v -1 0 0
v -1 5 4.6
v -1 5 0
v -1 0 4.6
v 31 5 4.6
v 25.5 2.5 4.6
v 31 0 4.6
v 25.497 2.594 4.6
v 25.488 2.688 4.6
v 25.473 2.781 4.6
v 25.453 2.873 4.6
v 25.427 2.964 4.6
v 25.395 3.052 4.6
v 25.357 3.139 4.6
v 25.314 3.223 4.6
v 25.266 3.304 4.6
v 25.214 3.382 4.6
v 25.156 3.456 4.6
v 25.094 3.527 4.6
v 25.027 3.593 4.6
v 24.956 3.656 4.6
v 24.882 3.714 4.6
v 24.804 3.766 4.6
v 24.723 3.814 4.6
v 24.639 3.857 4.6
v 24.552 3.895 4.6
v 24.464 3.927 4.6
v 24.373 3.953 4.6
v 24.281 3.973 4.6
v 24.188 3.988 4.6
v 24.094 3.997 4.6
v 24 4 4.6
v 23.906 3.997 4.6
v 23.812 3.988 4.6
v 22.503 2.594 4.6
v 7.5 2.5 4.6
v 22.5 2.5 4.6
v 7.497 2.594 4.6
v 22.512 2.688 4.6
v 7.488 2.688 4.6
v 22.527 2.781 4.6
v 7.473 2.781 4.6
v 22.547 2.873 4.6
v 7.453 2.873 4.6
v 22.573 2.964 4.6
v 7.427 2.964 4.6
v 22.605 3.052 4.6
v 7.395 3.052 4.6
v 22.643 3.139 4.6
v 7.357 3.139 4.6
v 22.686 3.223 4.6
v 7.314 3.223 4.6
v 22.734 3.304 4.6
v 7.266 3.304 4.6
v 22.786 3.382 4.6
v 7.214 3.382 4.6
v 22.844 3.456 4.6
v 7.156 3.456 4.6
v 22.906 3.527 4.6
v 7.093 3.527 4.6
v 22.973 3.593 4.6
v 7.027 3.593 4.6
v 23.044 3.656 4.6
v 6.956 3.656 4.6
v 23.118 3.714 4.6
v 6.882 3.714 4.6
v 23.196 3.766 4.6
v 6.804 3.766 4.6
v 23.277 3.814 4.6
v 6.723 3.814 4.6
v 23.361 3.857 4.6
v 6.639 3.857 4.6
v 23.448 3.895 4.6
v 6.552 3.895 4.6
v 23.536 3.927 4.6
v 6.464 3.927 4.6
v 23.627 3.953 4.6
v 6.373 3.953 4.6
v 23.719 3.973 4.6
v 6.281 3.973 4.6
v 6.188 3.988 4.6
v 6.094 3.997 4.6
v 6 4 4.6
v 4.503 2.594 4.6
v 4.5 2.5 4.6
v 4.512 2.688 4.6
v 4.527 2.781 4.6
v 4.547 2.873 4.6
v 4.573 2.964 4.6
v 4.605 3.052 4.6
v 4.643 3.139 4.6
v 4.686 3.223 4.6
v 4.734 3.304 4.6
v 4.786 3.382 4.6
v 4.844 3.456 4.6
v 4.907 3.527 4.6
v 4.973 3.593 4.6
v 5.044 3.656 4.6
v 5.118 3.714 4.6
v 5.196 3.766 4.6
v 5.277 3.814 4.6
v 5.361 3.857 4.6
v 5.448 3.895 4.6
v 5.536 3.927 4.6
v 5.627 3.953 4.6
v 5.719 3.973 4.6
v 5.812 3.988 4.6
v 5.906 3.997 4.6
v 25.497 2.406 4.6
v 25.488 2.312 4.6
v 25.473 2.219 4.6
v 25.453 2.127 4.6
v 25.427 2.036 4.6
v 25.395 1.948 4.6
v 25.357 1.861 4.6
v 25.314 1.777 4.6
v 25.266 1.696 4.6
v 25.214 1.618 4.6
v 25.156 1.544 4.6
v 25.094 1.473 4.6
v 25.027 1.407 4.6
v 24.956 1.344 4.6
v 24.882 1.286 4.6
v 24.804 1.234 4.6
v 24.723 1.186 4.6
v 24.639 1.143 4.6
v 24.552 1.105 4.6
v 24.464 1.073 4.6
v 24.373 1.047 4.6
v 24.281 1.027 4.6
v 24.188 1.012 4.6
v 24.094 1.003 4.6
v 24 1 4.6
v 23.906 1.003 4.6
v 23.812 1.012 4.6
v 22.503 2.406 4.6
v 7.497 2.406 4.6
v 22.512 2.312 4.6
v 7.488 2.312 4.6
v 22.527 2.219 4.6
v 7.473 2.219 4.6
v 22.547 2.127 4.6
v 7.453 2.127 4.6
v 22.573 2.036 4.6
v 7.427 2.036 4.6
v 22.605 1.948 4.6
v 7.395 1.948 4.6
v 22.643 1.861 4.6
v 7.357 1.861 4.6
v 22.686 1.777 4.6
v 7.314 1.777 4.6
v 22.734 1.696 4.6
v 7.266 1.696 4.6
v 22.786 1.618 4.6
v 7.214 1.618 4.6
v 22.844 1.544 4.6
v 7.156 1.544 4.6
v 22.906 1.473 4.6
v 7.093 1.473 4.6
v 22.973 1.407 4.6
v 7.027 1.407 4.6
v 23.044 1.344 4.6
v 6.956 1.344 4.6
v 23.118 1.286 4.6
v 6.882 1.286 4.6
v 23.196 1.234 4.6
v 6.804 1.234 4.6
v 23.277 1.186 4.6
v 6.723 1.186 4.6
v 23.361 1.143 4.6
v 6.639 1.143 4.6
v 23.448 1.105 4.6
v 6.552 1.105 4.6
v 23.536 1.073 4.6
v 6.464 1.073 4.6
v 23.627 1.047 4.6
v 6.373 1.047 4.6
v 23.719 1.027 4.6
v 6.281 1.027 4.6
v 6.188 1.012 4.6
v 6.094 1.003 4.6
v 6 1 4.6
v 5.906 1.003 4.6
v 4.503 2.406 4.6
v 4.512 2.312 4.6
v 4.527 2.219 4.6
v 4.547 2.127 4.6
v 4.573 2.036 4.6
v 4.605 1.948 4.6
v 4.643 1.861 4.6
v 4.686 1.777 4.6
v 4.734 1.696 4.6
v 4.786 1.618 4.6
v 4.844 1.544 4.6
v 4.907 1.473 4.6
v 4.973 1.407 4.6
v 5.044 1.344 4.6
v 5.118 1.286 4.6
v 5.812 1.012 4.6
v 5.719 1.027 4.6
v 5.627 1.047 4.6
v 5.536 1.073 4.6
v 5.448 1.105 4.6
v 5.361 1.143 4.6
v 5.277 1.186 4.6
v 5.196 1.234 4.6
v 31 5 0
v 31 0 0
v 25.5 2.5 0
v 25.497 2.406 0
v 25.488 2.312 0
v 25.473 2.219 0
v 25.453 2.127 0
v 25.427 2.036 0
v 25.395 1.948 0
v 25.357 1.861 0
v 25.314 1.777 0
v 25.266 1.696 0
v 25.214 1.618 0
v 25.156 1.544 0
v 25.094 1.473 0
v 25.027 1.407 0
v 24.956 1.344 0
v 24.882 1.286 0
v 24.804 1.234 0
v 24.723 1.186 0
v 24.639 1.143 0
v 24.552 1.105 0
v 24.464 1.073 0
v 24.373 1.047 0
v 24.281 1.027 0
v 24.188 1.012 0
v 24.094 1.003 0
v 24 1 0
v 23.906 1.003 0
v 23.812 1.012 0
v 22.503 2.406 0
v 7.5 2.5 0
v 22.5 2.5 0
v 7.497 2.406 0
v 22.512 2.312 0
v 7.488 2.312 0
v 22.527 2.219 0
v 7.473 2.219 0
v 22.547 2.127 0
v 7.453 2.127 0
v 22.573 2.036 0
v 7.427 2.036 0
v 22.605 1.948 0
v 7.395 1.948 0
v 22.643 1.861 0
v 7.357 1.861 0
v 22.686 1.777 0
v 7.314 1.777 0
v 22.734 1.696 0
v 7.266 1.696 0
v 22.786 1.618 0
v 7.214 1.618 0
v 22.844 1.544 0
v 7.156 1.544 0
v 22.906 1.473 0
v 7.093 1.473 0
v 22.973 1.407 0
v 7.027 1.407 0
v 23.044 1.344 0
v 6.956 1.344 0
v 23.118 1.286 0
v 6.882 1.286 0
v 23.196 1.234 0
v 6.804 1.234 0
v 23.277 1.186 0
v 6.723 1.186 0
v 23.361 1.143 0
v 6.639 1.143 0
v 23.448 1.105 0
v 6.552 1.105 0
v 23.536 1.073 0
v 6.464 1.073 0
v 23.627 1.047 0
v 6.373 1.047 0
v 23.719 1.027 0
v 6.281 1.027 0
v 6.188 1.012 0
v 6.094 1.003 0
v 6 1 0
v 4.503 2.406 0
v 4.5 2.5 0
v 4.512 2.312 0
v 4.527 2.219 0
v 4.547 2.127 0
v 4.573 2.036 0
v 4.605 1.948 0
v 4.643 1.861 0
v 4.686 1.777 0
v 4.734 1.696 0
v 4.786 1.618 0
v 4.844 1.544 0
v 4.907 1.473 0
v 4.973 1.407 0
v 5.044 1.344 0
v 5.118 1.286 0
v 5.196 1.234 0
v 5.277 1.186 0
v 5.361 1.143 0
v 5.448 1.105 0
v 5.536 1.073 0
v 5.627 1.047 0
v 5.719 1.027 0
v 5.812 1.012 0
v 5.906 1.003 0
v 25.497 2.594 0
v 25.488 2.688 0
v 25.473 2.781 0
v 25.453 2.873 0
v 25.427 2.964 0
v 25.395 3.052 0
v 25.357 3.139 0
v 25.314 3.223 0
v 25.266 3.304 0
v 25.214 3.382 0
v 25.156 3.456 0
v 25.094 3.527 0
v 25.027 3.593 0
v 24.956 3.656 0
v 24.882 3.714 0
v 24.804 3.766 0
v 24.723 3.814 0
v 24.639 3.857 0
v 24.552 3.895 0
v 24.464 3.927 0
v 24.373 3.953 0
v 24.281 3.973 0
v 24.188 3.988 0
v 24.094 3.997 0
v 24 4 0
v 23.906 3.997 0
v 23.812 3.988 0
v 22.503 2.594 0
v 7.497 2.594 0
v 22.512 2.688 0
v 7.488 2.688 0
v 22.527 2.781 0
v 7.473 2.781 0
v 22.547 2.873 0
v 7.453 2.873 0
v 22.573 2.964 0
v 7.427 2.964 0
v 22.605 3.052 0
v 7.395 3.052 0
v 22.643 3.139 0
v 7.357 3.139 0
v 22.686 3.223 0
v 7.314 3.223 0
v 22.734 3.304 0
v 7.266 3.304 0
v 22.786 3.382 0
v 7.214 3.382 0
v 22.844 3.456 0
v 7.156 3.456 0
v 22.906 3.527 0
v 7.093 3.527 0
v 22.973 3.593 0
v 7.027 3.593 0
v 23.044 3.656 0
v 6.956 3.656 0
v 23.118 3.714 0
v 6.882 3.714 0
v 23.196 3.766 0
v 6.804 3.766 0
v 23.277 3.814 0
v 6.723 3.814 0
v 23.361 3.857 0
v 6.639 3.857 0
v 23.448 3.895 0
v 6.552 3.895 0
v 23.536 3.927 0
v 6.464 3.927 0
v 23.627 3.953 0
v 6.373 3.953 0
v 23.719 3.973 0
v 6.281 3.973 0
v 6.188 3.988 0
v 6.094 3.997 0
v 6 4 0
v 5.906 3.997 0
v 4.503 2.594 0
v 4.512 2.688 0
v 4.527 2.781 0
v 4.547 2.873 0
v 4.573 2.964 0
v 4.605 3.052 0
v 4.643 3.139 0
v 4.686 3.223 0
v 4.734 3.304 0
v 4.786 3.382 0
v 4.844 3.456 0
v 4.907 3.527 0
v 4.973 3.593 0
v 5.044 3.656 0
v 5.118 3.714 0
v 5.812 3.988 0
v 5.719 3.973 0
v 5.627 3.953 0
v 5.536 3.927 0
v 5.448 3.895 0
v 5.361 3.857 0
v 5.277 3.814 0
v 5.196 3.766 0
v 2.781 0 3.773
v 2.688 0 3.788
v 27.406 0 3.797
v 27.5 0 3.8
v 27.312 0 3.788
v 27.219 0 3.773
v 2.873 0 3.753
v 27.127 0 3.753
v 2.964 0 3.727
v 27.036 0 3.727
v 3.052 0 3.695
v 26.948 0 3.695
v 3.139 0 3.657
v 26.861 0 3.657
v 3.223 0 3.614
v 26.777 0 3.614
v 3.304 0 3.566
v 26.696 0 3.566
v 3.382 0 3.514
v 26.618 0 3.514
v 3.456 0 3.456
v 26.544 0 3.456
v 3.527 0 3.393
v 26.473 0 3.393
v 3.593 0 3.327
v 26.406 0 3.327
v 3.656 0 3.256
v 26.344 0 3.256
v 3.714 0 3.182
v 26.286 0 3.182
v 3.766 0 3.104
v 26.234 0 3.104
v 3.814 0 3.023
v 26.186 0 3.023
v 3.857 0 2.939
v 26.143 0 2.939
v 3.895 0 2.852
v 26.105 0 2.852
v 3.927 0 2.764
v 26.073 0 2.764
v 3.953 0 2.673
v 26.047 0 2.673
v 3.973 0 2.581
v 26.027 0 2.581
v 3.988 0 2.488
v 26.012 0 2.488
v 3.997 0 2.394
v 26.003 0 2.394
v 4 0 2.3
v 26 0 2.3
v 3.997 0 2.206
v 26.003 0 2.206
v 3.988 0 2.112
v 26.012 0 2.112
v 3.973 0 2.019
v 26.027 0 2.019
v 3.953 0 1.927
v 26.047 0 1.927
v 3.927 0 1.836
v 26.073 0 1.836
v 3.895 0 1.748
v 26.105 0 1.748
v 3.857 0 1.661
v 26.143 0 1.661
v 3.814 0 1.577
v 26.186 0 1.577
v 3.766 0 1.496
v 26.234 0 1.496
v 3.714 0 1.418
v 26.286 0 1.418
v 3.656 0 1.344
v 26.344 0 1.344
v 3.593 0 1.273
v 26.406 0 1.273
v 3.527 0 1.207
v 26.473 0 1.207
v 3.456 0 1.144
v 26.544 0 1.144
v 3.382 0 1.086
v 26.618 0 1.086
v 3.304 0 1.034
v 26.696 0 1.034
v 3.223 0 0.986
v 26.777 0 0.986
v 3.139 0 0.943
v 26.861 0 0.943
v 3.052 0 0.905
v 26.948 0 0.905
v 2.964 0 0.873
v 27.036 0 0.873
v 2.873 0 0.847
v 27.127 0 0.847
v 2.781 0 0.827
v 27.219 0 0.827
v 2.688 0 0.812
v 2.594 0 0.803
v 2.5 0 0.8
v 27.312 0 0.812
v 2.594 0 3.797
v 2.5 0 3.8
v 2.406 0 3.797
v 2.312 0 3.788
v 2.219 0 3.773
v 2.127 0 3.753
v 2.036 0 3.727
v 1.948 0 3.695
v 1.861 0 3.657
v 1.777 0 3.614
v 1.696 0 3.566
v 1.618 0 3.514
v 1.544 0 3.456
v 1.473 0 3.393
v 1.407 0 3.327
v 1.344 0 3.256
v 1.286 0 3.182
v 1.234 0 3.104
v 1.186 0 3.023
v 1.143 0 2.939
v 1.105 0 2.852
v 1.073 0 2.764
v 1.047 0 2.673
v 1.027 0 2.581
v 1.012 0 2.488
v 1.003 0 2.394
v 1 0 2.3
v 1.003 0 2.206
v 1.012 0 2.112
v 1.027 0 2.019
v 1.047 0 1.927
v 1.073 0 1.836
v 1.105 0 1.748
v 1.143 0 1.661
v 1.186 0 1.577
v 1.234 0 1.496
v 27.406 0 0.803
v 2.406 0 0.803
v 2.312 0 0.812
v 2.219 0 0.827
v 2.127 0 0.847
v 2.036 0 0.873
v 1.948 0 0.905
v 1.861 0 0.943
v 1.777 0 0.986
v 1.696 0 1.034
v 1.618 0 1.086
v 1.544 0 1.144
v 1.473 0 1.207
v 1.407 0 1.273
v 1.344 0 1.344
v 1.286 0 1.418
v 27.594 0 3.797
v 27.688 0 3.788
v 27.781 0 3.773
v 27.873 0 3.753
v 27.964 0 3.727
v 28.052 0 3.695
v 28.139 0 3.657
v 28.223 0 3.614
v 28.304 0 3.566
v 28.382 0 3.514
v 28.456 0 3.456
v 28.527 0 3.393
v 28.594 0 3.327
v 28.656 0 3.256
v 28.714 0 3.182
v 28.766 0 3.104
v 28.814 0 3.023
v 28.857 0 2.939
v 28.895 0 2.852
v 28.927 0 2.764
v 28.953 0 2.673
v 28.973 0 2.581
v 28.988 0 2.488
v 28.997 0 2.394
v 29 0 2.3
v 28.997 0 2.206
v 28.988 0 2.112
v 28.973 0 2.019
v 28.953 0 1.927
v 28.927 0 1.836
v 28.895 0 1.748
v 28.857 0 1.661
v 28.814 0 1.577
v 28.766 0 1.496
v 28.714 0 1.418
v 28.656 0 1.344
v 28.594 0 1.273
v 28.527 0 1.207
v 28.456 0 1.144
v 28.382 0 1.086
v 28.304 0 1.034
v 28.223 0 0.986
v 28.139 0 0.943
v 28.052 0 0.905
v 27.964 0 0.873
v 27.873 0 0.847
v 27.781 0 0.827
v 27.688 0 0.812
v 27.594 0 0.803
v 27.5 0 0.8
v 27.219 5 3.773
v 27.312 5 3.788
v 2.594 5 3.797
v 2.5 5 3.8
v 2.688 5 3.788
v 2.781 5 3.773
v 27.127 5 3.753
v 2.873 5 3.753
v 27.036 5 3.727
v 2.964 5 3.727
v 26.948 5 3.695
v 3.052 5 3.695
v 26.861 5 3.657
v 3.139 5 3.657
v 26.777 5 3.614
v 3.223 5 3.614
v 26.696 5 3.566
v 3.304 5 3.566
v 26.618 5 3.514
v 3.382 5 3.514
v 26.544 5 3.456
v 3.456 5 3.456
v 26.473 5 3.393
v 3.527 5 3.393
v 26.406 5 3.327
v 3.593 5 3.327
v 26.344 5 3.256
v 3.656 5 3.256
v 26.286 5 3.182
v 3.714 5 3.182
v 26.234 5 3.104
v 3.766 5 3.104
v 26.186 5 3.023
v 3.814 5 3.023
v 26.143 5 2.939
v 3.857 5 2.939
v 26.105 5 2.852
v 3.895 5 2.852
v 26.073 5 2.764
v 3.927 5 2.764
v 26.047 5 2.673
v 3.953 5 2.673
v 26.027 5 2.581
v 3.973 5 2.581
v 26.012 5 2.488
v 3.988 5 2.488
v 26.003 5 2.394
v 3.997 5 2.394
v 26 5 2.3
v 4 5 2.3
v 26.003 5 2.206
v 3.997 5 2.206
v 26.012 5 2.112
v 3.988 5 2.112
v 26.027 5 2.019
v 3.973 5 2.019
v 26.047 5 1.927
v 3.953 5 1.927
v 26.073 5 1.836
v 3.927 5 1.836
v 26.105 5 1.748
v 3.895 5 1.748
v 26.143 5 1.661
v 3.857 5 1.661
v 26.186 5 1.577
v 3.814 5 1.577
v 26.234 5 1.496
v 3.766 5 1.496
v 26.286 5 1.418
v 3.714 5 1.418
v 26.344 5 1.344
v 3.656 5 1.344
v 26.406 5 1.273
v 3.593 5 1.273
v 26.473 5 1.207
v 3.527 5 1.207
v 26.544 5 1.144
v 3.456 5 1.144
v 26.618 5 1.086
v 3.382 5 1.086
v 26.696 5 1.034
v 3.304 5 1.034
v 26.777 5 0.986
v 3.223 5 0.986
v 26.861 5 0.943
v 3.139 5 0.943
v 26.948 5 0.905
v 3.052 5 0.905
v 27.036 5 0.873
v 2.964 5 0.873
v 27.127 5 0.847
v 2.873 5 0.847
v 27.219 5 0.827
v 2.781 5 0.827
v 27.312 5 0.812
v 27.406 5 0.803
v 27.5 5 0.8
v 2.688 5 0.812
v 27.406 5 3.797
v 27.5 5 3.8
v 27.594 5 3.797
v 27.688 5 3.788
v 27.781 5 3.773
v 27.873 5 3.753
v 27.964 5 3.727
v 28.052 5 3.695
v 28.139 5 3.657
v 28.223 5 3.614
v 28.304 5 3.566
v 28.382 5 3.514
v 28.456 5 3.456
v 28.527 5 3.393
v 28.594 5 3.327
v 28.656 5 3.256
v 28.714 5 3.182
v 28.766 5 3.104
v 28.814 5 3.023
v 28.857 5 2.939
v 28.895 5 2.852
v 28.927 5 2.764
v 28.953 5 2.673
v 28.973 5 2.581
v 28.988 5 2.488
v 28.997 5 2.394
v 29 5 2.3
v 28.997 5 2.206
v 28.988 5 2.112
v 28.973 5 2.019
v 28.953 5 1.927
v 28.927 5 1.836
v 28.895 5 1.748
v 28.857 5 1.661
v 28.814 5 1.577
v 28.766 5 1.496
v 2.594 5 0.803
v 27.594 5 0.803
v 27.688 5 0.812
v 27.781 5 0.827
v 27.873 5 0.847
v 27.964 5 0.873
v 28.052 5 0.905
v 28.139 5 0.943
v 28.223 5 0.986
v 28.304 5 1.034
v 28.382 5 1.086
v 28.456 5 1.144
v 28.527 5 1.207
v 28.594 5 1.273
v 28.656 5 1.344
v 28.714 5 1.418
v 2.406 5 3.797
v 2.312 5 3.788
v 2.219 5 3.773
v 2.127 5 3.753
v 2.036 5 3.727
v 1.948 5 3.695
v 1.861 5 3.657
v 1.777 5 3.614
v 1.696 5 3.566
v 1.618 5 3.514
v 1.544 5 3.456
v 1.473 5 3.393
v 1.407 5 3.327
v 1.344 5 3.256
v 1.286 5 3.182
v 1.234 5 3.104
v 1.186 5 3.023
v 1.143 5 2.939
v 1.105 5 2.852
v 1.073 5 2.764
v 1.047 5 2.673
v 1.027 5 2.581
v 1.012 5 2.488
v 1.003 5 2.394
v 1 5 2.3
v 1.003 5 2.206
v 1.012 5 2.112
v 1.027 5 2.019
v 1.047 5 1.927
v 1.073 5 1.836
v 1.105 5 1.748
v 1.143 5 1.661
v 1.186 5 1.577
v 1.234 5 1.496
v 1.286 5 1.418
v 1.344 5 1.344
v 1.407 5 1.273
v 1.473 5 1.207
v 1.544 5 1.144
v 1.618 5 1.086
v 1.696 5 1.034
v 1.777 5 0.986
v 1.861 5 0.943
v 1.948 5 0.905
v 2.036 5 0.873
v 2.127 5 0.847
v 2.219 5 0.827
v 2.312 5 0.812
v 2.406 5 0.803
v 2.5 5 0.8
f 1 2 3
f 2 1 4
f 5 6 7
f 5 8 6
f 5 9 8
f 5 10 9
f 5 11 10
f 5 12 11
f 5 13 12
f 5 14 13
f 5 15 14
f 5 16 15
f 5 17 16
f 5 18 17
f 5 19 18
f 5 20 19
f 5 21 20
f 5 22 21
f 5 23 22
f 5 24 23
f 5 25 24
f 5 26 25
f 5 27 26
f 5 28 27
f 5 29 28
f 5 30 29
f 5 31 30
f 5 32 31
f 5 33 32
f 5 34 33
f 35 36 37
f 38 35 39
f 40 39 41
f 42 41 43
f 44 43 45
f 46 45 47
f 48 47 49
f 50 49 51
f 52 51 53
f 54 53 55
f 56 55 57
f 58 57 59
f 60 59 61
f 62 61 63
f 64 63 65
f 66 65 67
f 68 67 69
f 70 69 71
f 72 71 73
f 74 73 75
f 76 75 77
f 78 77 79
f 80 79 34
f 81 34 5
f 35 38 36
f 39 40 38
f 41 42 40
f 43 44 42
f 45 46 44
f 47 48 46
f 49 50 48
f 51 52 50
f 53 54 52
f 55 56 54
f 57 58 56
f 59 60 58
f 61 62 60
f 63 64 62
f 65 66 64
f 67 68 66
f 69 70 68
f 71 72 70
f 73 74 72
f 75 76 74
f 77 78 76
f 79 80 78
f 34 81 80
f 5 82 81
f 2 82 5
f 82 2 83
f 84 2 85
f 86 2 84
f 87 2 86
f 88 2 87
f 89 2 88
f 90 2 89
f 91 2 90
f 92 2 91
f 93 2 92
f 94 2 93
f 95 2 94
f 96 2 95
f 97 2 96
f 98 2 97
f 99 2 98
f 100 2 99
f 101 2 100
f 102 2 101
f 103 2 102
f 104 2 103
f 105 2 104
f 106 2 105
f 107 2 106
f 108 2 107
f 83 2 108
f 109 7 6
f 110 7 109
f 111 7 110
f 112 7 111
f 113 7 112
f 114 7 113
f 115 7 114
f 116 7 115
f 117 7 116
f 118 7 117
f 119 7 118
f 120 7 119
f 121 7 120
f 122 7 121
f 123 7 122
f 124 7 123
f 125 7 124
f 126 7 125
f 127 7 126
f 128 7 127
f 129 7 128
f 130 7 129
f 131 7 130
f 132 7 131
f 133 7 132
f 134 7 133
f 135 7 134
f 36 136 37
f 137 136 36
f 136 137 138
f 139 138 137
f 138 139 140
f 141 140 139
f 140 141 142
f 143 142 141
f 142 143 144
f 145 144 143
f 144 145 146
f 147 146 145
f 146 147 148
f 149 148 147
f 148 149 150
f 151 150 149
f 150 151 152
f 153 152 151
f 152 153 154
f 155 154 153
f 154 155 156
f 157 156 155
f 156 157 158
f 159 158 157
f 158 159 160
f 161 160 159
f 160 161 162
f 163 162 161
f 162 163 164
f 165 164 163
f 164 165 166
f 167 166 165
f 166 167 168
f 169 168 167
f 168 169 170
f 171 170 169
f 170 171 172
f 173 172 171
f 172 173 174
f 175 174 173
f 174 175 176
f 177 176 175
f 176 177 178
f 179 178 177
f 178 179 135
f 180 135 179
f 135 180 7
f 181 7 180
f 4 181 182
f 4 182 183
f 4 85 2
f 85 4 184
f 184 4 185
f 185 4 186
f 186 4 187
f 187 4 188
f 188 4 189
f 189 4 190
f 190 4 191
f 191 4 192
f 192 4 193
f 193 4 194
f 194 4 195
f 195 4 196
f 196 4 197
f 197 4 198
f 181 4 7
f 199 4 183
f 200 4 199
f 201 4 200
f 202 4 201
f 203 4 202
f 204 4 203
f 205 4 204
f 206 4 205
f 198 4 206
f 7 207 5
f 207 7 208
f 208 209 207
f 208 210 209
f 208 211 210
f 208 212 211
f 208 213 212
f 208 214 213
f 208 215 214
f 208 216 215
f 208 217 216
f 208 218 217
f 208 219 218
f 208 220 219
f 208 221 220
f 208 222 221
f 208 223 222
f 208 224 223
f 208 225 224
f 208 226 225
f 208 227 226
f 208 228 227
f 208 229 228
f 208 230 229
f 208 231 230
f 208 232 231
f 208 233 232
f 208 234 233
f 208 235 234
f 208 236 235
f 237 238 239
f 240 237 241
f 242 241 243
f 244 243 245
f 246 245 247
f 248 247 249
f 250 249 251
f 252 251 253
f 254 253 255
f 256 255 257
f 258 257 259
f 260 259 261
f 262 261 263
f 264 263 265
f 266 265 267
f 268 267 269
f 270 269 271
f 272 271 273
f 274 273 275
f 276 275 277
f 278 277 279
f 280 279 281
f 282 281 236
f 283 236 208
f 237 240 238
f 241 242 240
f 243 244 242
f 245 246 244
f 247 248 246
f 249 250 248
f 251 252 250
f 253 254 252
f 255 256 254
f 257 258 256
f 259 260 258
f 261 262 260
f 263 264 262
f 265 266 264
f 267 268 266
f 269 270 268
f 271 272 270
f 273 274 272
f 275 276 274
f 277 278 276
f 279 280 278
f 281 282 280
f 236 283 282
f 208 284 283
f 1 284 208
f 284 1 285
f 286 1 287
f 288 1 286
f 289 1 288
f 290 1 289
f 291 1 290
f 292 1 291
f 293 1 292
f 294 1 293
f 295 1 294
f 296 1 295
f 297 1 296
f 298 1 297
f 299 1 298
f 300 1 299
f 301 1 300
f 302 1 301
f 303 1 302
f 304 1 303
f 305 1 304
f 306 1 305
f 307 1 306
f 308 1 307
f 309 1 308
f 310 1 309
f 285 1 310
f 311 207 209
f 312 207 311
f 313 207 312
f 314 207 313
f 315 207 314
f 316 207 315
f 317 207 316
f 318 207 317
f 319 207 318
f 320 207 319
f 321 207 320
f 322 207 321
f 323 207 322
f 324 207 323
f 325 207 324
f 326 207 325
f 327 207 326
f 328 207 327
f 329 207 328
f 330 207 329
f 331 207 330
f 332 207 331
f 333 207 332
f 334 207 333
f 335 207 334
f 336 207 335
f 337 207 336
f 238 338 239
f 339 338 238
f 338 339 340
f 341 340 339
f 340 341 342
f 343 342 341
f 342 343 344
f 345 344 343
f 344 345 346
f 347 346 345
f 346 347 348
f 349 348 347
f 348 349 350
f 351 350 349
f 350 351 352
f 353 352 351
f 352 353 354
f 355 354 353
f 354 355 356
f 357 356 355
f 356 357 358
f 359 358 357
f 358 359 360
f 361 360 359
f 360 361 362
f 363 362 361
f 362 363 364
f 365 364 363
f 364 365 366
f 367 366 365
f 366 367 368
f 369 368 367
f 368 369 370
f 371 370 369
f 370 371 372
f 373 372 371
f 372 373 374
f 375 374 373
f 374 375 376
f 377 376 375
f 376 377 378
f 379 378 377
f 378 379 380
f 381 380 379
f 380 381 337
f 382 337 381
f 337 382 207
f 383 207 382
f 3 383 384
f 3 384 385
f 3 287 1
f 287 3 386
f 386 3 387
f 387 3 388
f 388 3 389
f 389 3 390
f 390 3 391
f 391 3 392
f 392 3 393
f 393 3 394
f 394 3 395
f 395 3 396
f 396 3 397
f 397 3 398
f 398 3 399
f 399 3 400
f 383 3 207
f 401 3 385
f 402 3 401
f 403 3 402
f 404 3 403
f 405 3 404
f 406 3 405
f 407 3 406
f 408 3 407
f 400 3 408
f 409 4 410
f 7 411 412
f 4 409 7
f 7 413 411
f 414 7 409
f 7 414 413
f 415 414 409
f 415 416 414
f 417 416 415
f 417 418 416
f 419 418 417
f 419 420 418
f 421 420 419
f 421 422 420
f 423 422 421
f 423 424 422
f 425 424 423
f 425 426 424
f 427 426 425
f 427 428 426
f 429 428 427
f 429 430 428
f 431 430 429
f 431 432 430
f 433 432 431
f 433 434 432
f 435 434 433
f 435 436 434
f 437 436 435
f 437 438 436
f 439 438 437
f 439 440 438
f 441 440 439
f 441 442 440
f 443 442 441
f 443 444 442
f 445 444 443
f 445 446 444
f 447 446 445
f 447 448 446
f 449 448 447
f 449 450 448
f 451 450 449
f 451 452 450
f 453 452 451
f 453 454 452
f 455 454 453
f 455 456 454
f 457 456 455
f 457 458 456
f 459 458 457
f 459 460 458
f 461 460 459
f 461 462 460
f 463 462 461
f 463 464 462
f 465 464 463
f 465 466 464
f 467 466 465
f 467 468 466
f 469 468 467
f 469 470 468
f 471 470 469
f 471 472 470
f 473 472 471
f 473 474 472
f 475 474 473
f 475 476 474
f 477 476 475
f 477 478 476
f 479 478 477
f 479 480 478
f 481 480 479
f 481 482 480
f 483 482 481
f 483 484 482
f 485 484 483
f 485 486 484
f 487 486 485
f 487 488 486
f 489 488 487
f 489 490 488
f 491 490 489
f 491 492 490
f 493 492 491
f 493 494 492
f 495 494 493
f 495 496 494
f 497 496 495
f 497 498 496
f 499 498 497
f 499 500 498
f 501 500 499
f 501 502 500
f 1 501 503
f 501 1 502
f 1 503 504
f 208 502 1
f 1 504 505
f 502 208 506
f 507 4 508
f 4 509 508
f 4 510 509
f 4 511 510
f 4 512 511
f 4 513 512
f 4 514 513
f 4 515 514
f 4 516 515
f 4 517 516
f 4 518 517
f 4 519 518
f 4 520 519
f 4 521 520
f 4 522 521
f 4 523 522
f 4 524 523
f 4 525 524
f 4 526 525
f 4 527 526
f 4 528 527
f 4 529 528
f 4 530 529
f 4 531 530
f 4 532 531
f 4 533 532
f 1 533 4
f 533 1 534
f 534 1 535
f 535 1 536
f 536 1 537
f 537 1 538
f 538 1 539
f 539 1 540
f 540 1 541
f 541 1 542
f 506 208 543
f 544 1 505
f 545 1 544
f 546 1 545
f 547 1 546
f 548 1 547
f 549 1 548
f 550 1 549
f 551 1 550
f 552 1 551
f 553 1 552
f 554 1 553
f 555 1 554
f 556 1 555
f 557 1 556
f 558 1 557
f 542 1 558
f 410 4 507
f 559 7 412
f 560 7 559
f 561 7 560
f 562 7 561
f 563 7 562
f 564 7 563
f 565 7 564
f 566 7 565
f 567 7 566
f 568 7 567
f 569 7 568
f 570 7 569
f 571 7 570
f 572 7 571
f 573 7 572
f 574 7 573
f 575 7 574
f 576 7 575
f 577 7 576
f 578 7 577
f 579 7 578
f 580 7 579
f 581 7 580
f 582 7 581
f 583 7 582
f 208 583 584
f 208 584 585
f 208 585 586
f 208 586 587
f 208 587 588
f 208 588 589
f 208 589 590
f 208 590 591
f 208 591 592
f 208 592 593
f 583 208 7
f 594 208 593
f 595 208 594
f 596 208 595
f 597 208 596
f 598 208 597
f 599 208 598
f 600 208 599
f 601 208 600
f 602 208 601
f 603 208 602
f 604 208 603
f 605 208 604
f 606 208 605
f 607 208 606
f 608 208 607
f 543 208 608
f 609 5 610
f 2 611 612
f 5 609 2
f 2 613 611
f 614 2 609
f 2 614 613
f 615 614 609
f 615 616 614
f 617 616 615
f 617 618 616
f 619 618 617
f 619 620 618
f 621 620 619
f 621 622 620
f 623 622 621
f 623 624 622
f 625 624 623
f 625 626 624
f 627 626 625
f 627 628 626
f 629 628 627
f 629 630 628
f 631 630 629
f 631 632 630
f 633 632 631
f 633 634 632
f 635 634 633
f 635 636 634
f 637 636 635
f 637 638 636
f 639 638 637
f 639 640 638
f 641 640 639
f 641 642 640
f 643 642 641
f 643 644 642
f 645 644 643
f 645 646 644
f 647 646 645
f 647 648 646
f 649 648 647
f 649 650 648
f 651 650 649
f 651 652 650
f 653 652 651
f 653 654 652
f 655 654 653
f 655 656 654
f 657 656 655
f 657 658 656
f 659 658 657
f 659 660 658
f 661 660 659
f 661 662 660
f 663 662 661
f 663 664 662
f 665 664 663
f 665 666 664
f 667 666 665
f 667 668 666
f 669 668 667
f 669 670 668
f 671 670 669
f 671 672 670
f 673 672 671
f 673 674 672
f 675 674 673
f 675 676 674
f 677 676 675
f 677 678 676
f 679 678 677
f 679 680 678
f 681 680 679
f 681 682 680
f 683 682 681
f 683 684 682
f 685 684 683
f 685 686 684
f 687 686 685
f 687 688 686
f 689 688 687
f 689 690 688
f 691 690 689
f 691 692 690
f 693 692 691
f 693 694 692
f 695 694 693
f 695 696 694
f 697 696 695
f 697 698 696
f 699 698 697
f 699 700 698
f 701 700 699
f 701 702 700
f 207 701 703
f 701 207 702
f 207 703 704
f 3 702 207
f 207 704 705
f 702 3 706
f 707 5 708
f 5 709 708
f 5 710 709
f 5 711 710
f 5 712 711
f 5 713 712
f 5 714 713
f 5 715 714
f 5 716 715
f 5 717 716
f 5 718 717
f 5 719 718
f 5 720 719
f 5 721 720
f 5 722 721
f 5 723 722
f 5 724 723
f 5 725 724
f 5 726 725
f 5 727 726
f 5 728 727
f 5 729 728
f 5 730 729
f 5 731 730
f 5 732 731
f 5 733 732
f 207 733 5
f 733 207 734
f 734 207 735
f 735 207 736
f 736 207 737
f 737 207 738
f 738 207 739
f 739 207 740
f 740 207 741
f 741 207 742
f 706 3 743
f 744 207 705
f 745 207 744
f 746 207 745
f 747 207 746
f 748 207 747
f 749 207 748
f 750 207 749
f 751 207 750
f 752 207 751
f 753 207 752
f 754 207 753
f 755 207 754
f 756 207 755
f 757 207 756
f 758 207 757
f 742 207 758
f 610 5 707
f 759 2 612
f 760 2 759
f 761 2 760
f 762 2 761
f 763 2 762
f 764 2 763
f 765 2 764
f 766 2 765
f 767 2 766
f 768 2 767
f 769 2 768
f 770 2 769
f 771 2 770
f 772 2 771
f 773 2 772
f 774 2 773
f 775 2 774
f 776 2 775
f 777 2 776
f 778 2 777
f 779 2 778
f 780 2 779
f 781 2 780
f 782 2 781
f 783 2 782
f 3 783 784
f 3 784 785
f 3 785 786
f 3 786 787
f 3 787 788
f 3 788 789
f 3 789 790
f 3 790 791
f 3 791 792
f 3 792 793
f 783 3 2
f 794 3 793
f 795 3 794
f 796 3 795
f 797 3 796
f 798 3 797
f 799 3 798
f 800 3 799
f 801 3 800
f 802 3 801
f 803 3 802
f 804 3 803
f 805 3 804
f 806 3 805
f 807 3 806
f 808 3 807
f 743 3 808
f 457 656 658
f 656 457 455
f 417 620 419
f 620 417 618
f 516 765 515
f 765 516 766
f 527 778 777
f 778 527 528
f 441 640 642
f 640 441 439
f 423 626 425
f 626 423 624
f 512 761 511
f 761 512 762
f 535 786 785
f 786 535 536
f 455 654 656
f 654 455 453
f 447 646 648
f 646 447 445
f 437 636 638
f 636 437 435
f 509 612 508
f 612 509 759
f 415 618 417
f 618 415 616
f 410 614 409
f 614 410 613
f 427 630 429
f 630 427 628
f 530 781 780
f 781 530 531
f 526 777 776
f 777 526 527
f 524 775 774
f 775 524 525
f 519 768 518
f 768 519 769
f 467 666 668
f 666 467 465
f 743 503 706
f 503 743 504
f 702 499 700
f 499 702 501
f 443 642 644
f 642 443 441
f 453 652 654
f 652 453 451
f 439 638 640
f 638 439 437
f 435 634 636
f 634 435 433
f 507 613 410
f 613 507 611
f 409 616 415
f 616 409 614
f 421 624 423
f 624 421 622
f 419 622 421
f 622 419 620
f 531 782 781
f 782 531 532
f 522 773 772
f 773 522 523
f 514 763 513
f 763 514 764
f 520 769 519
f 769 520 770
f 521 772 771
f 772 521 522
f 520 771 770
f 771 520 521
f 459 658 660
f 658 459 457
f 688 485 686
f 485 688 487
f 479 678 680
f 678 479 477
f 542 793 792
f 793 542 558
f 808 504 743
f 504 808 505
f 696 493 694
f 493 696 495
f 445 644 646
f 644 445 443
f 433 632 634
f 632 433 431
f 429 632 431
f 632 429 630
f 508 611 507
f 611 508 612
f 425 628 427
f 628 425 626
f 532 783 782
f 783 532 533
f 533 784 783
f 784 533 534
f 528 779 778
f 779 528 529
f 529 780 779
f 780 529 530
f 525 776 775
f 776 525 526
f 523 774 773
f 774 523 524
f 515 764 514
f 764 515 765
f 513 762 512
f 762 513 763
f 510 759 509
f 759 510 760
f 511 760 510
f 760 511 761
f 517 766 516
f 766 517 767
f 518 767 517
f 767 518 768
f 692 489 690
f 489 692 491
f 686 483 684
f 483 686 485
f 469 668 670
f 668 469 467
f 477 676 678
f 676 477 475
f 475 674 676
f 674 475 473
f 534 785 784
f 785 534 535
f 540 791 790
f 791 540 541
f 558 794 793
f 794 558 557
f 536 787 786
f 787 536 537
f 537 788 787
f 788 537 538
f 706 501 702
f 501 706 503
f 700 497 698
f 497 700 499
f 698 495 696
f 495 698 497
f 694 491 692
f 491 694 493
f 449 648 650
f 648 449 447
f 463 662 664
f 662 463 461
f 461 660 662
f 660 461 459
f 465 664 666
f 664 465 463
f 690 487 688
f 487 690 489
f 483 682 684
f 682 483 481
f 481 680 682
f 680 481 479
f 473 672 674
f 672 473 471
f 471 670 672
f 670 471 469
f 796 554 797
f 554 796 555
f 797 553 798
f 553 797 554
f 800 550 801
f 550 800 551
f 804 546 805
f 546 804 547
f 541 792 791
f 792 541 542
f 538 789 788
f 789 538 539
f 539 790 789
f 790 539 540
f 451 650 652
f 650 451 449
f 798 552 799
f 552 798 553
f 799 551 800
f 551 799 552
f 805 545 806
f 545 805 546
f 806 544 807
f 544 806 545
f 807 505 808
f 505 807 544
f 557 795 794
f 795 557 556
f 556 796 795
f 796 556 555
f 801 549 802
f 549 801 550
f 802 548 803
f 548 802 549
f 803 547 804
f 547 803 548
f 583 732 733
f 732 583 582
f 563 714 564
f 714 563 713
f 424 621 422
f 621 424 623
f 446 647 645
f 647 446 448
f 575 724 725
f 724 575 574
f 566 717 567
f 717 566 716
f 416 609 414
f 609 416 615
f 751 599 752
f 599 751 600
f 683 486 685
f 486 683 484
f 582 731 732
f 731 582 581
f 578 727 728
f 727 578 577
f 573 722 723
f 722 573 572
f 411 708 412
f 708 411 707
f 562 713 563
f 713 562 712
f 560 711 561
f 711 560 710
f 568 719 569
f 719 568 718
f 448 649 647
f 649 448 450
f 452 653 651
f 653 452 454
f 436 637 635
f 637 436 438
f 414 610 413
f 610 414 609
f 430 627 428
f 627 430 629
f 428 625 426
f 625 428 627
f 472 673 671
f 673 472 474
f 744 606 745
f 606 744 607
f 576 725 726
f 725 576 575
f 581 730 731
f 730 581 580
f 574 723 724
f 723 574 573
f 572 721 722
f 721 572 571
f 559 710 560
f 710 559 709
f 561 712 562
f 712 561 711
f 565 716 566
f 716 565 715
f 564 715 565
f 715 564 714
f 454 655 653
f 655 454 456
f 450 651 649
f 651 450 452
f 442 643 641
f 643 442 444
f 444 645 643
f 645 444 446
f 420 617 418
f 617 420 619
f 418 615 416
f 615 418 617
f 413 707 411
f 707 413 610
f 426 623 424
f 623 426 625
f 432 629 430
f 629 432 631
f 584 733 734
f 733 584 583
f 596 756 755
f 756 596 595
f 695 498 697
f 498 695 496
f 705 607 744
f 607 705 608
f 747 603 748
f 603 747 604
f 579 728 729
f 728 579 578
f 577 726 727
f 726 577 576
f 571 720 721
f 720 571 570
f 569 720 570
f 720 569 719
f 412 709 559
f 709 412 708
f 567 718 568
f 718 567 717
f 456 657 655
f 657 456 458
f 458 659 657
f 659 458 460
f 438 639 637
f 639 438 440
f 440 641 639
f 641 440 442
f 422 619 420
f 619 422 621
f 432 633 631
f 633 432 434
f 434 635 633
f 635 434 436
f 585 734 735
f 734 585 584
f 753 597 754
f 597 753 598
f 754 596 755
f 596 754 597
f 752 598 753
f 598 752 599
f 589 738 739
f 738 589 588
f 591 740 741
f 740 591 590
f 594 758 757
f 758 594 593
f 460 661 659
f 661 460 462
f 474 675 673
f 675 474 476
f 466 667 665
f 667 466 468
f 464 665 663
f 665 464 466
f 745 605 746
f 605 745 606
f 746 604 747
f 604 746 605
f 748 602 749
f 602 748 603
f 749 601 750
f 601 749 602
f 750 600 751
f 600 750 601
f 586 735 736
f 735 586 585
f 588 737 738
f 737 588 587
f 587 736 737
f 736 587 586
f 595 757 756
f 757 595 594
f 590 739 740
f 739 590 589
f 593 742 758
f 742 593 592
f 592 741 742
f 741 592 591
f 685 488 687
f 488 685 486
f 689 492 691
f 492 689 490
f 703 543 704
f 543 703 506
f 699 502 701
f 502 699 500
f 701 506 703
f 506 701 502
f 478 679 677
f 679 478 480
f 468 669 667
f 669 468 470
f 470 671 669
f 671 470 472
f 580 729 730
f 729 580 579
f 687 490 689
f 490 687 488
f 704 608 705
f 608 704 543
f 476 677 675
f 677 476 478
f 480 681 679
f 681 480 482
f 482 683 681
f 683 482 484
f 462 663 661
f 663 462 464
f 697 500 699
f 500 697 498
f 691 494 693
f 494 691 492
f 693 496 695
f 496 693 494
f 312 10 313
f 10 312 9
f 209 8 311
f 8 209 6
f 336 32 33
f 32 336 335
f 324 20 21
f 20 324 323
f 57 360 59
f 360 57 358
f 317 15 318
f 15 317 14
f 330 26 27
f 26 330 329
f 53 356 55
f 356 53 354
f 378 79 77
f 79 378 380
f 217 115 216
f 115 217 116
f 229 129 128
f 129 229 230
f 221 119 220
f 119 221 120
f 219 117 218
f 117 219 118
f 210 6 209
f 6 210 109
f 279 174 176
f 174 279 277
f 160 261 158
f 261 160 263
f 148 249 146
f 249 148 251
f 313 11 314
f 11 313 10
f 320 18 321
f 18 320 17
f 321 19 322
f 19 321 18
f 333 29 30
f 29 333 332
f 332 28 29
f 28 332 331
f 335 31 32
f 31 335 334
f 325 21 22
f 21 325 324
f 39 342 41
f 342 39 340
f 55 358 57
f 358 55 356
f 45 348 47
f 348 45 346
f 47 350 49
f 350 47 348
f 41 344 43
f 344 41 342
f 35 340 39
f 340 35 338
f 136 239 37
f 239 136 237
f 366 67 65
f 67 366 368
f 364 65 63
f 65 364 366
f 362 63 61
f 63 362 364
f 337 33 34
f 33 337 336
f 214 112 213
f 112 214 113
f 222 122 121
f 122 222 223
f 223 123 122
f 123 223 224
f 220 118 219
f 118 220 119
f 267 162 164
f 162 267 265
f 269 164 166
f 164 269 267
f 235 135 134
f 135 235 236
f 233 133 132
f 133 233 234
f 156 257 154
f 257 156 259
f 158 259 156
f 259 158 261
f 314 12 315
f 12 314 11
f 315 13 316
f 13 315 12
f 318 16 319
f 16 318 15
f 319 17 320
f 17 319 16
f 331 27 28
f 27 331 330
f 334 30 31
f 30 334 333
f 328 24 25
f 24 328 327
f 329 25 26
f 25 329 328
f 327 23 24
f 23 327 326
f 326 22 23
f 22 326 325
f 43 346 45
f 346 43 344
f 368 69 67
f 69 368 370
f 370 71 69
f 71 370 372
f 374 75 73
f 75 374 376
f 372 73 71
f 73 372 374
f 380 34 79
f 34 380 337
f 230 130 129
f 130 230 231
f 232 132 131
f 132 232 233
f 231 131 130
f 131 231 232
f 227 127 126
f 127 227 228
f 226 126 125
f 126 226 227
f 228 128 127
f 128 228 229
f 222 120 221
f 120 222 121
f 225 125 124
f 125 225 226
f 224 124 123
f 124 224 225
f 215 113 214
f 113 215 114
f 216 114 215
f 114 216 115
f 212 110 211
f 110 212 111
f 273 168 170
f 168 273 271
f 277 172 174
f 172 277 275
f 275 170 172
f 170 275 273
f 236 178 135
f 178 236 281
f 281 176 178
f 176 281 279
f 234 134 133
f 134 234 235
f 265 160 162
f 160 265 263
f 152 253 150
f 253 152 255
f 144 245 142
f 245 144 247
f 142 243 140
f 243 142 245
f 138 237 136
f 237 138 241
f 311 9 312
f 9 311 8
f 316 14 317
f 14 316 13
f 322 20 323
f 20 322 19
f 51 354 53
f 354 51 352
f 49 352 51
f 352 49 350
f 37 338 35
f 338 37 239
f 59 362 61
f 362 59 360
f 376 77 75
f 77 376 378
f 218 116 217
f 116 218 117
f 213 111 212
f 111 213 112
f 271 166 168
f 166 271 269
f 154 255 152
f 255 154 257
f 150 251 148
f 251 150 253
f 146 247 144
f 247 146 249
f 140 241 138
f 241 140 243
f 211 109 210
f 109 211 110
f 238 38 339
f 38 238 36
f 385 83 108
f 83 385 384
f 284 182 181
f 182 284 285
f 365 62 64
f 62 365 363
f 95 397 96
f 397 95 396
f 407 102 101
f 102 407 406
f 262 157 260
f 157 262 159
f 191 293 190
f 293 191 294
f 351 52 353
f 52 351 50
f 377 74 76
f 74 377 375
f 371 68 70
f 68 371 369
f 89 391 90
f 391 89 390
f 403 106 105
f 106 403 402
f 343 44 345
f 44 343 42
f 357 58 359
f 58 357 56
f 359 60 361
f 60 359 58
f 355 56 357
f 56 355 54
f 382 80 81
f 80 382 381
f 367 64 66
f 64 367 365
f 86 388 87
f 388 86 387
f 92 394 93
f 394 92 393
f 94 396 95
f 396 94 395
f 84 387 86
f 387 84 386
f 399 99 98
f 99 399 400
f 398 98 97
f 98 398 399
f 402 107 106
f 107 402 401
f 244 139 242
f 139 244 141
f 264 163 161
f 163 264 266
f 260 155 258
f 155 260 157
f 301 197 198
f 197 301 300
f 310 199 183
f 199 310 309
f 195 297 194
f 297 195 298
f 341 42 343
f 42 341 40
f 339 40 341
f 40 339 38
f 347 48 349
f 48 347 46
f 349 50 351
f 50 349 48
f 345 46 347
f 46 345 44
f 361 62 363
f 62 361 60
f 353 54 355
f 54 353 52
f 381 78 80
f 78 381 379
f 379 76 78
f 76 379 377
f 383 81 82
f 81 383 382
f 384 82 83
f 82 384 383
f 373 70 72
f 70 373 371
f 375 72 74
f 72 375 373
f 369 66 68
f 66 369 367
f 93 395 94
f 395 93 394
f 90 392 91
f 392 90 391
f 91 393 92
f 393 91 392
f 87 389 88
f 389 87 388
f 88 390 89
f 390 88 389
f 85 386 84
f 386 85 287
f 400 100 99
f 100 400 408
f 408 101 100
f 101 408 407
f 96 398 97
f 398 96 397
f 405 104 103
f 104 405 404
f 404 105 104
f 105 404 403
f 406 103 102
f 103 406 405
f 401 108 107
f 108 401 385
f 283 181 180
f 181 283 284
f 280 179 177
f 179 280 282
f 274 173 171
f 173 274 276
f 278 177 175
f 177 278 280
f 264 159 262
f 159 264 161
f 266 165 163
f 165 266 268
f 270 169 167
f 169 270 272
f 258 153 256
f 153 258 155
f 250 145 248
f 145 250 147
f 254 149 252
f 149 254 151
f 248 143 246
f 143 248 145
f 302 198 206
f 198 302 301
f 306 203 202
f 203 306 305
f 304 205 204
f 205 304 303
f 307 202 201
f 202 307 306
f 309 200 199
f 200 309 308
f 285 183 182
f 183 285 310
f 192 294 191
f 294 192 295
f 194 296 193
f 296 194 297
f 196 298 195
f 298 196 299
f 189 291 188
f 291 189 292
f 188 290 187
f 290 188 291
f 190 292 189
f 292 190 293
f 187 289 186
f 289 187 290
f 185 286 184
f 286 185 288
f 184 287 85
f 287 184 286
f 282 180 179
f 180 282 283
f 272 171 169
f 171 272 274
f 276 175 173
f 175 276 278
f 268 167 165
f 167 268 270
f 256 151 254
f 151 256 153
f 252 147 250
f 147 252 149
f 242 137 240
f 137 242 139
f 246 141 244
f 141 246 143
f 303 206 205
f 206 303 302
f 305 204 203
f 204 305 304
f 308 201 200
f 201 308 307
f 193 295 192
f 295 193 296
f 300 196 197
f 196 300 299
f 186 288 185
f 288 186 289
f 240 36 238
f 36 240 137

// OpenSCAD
difference(){
    translate([-1,0,0]) cube([32,5,4.6]);

    translate([2.5,5.1,2.3]) rotate([90,0,0]) cylinder(h=7,r=1.5,$fn=100);
    translate([30-2.5,5.1,2.3]) rotate([90,0,0]) cylinder(h=7,r=1.5,$fn=100);

    translate([30-((30-18)/2),2.5,-1]) cylinder(h=7,r=1.5,$fn=100);
    translate([((30-18)/2),2.5,-1]) cylinder(h=7,r=1.5,$fn=100);
}
